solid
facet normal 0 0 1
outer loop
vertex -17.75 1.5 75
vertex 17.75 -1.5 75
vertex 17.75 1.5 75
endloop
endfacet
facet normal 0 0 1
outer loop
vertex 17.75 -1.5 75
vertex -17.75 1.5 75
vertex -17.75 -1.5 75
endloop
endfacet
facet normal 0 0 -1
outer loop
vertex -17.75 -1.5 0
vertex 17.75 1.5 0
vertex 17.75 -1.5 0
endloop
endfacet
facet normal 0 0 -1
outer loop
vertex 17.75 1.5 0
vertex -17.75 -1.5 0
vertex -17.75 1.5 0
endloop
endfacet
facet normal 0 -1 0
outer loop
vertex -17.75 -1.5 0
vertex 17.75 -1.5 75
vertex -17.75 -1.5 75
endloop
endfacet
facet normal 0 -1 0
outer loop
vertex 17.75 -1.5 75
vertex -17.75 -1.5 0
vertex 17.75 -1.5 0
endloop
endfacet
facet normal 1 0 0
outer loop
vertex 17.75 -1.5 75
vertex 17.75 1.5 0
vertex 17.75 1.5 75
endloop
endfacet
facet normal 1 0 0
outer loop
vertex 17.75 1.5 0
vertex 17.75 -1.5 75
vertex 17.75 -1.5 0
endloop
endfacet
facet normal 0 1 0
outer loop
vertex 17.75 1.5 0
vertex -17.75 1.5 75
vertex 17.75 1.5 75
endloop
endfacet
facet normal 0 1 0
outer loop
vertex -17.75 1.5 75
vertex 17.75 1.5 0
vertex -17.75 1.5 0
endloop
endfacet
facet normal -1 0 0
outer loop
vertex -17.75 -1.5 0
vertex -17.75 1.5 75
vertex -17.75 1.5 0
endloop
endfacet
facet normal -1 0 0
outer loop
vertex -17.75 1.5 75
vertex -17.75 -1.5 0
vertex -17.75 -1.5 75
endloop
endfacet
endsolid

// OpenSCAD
// file: Inlet.scad
$fn = 100;
tiny = 0.01;


/******************************************************
 * dx,dy: Maße, wie bei 'Boden' angegeben.
 *****************************************************/
module inlet_top_down(dx,dy) {
  h1 = 3;  
  dx1 = 5.9;
  dx2 = 4.0; // vier mal Fase an Ecken

  difference() {
     translate([0,0,h1/2]) cube([dx-2*dx1,dy-2*dx1,h1], true); 
     translate([+dx/2-dx1,+dy/2-dx1,h1/2-tiny]) rotate([0,0,45]) cube([dx2,dx2,h1+3*tiny], true);
     translate([+dx/2-dx1,-dy/2+dx1,h1/2-tiny]) rotate([0,0,45]) cube([dx2,dx2,h1+3*tiny], true);
     translate([-dx/2+dx1,+dy/2-dx1,h1/2-tiny]) rotate([0,0,45]) cube([dx2,dx2,h1+3*tiny], true);
     translate([-dx/2+dx1,-dy/2+dx1,h1/2-tiny]) rotate([0,0,45]) cube([dx2,dx2,h1+3*tiny], true);
     }
}


/******************************************************
 * dy: Maß, wie bei 'Boden' angegeben.
 * h:  Maß, wie bei 'Kante' angegeben.
 *****************************************************/
module inlet_front_back(h,dy) {
  h1 = 3;
  dy1 = 12+12.5;
  translate([0,0,h/2]) cube([h1,dy-dy1,h], true);
}


/******************************************************
 * dx: Maß, wie bei 'Boden' angegeben.
 * h:  Maß, wie bei 'Kante' angegeben.
 *****************************************************/
module inlet_left_right(h,dx) {
  h1 = 3;
  dx1 = 12+12.5;
  translate([0,0,h/2]) cube([dx-dx1,h1,h], true);
}
// main file
$fn = 100;

use <Inlet.scad>


inlet_left_right(75,60);
